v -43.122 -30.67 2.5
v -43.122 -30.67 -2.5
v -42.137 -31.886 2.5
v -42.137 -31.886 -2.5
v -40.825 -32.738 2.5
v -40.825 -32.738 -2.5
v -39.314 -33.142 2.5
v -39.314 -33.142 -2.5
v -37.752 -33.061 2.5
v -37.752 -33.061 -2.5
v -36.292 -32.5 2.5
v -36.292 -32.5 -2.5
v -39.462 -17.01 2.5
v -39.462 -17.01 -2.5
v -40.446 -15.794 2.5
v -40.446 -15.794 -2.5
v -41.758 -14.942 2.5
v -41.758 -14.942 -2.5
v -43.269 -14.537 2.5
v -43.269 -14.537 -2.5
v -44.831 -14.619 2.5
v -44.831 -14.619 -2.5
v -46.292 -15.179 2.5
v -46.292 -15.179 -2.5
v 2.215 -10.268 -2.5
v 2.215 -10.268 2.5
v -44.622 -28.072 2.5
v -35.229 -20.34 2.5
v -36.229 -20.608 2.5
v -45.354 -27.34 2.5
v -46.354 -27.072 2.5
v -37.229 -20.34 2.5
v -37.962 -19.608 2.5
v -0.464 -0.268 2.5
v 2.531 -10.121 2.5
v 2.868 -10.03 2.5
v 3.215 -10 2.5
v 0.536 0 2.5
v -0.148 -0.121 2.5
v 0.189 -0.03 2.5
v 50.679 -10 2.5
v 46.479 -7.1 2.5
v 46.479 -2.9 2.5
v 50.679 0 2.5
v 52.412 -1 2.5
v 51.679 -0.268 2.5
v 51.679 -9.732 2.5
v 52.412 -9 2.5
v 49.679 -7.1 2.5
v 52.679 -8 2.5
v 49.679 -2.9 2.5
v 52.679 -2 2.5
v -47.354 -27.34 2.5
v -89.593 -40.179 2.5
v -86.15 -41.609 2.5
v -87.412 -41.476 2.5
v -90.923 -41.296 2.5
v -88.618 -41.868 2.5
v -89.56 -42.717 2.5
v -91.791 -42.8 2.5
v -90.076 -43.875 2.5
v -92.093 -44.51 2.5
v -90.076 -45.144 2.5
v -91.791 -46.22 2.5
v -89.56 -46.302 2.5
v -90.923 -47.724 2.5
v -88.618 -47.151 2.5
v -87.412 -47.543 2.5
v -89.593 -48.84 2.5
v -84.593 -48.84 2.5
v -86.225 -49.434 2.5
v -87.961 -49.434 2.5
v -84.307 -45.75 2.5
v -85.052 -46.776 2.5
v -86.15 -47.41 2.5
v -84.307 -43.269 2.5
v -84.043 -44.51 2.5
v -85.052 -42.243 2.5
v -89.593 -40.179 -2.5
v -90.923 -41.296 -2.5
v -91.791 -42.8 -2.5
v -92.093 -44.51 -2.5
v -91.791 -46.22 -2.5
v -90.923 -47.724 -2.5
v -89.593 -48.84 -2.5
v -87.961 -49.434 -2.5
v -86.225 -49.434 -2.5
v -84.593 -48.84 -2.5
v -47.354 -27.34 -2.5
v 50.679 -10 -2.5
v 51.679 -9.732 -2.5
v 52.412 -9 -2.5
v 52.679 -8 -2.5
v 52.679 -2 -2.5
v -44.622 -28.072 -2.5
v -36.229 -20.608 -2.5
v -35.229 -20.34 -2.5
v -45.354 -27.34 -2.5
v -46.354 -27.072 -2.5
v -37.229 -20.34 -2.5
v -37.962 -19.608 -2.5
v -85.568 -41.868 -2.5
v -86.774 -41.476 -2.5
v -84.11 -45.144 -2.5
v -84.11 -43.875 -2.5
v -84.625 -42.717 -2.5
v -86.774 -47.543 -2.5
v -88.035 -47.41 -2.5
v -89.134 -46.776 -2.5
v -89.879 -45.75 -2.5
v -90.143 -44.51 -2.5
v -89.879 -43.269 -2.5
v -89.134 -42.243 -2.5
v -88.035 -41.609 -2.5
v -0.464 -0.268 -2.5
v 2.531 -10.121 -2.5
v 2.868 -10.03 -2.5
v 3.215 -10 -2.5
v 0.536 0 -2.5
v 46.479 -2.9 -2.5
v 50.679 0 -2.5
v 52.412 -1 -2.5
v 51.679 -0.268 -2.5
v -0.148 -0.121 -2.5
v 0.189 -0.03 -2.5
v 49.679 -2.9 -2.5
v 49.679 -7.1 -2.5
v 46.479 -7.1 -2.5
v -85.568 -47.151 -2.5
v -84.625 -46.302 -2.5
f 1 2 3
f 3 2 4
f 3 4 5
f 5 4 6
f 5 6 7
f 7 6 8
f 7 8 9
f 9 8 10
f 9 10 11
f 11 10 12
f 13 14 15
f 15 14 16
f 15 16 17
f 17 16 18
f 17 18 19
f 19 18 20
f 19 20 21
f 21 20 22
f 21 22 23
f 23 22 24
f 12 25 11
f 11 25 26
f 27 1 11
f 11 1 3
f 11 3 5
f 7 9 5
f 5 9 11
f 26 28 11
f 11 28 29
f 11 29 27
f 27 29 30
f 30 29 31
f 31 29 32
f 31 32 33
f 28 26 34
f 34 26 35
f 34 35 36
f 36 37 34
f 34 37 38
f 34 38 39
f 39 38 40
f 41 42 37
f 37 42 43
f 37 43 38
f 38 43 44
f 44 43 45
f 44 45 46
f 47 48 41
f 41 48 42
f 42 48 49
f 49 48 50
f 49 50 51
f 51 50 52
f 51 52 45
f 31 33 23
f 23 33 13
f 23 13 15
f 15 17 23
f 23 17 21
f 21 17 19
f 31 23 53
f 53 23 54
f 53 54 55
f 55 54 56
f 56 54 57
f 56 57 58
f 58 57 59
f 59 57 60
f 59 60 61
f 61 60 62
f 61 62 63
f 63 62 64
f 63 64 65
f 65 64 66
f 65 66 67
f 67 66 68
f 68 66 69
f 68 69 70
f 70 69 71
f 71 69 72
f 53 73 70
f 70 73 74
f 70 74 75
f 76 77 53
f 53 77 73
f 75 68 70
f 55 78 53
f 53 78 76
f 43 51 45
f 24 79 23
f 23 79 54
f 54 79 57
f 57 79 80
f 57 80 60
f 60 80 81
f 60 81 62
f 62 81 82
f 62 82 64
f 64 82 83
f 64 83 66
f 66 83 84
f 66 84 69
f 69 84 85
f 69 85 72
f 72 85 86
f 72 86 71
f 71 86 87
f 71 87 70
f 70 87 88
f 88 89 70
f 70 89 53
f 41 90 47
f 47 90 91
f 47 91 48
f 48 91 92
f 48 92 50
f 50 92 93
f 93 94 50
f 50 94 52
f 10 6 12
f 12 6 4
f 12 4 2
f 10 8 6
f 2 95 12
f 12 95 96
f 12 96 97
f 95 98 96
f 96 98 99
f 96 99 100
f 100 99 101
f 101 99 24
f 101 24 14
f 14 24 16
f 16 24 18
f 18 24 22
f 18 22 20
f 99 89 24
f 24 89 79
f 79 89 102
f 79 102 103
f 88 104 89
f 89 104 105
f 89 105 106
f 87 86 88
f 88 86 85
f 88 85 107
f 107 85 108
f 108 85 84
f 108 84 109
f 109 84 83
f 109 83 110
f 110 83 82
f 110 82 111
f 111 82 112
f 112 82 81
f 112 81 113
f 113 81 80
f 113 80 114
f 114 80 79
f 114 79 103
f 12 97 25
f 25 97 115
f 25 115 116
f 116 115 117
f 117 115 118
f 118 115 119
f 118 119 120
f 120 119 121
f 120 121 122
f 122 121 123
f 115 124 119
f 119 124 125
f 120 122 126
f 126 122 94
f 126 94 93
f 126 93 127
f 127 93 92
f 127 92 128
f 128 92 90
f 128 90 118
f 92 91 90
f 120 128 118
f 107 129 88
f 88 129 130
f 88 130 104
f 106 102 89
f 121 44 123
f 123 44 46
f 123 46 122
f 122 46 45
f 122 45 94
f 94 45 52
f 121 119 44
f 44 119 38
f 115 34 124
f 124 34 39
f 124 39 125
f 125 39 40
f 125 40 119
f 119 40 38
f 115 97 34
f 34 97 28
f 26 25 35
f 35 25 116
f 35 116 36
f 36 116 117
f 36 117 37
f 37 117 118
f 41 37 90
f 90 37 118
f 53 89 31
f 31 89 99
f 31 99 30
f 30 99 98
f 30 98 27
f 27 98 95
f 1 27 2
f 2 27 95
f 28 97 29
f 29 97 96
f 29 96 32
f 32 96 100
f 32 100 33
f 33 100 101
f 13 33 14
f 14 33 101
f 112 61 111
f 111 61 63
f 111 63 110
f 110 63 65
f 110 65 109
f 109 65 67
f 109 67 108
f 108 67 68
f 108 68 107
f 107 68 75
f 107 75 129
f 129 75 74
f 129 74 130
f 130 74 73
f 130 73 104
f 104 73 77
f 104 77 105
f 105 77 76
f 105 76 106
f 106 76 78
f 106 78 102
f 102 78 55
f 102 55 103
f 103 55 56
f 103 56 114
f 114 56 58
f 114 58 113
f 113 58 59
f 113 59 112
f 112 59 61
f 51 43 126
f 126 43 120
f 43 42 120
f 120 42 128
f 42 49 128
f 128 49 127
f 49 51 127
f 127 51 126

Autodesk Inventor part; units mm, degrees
ref_plane "YZ Plane" through (0, 0, 0) normal (1, 0, 0) x (0, 1, 0)
ref_plane "XZ Plane" through (0, 0, 0) normal (0, 1, 0) x (-1, 0, 0)
ref_plane "XY Plane" through (0, 0, 0) normal (0, 0, 1) x (1, 0, 0)
sketch "スケッチ1" plane through (0, 0, 0) normal (0, 0, 1) x (1, 0, 0)
  line L0 (0, 0) -> (52.6795, 0)
  line L1 (2.6795, -10) -> (52.6795, -10)
  line L2 (52.6795, 0) -> (52.6795, -10)
  line L3 (2.6795, -10) -> (-83.923, -60)
  line L4 (-36.9615, -21.3397) -> (0, 0)
  line L5 (-83.923, -60) -> (-93.923, -42.6795)
  line L6 (-93.923, -42.6795) -> (-85.2628, -37.6795)
  line L7 (-85.2628, -37.6795) -> (-41.9615, -12.6795)
  line L8 (-41.9615, -12.6795) -> (-36.9615, -21.3397)
  line L9 (-88.923, -51.3397) -> (-45.6218, -26.3397)
  line L10 (-45.6218, -26.3397) -> (-40.6218, -35)
  dimension "d1" = 50
  dimension "d2" = 10
  dimension "d3" = 100
  dimension "d4" = 150
  dimension "d5" = 10
  dimension "d6" = 20
  dimension "d42" = 60
  dimension "d43" = 50
  dimension "d44" = 10
extrude "押し出し1" add sketch "スケッチ1" along normal mid plane 5 contours L0 L2 L1 L3 L10 L9 L5 L6 L7 L8 L4
sketch "スケッチ2" plane through (0, 0, 2.5) normal (0, 0, 1) x (1, 0, 0)
  line L0 (46.4795, -7.1) -> (49.6795, -7.1)
  line L1 (49.6795, -7.1) -> (49.6795, -2.9)
  line L2 (49.6795, -2.9) -> (46.4795, -2.9)
  line L3 (46.4795, -2.9) -> (46.4795, -7.1)
  line L4 (46.4795, -7.1) -> (49.6795, -2.9) construction
  line L5 (49.6795, -7.1) -> (46.4795, -2.9) construction
  line L6 (52.6795, 0) -> (0, 0) projected
  line L7 (2.6795, -10) -> (52.6795, -10) projected
  line L8 (52.6795, -10) -> (52.6795, 0) projected
  point P0 (48.0795, -5)
  dimension "d14" = 3
  dimension "d15" = 3.2
  dimension "d64" = 4.2
  dimension "d65" = 2.9
extrude "押し出し2" cut sketch "スケッチ2" against normal blind 5
sketch "スケッチ5" plane through (0, 0, 2.5) normal (0, 0, 1) x (1, 0, 0)
  line L0 (-41.9615, -12.6795) -> (-93.923, -42.6795) projected
  line L1 (-93.923, -42.6795) -> (-88.923, -51.3397) projected
  circle A0 centre (-87.0929, -44.5096) radius 3.05
  point P0 (0, 0)
  dimension "d45" = 5
  dimension "d46" = 5
  dimension "d47" = 6.1
hole "穴3" at (-87.0929, -44.5096, 2.5) direction (0, 0, -1) diameter 6.1 end through all
fillet "フィレット2" radius 2 10 edges at (-93.923, -42.6795, 0) (-88.923, -51.3397, 0) (-41.9615, -12.6795, 0) (-36.9615, -21.3397, 0) (-40.6218, -35, 0) (-45.6218, -26.3397, 0) (2.6795, -10, 0) (0, 0, 0) (52.6795, 0, 0) (52.6795, -10, 0)
sketch "スケッチ6" plane through (0, 0, 2.5) normal (0, 0, 1) x (1, 0, 0)
  arc A0 (50.6795, -10) -> (52.6795, -8) centre (50.6795, -8) ccw projected
  line L0 (52.6795, -8) -> (52.6795, -2) projected
  arc A1 (52.6795, -2) -> (50.6795, 0) centre (50.6795, -2) ccw projected
  line L1 (50.6795, 0) -> (0.5359, 0) projected
  arc A2 (0.5359, 0) -> (-0.4641, -0.2679) centre (0.5359, -2) ccw projected
  line L2 (-0.4641, -0.2679) -> (-35.2295, -20.3397) projected
  arc A3 (-37.9615, -19.6077) -> (-35.2295, -20.3397) centre (-36.2295, -18.6077) ccw projected
  line L3 (-37.9615, -19.6077) -> (-40.9615, -14.4115) projected
  arc A4 (-40.9615, -14.4115) -> (-43.6936, -13.6795) centre (-42.6936, -15.4115) ccw projected
  line L4 (-43.6936, -13.6795) -> (-92.191, -41.6795) projected
  arc A5 (-92.191, -41.6795) -> (-92.923, -44.4115) centre (-91.191, -43.4115) ccw projected
  line L5 (-92.923, -44.4115) -> (-89.923, -49.6077) projected
  arc A6 (-89.923, -49.6077) -> (-87.191, -50.3397) centre (-88.191, -48.6077) ccw projected
  line L6 (-87.191, -50.3397) -> (-47.3538, -27.3397) projected
  arc A7 (-44.6218, -28.0718) -> (-47.3538, -27.3397) centre (-46.3538, -29.0718) ccw projected
  line L7 (-44.6218, -28.0718) -> (-41.6218, -33.2679) projected
  arc A8 (-41.6218, -33.2679) -> (-38.8897, -34) centre (-39.8897, -32.2679) ccw projected
  line L8 (-38.8897, -34) -> (2.2154, -10.2679) projected
  arc A9 (3.2154, -10) -> (2.2154, -10.2679) centre (3.2154, -12) ccw projected
  line L9 (3.2154, -10) -> (50.6795, -10) projected
  circle A10 centre (-87.0929, -44.5096) radius 3.05 projected
  line L10 (46.4795, -2.9) -> (49.6795, -2.9) projected
  line L11 (49.6795, -2.9) -> (49.6795, -7.1) projected
  line L12 (49.6795, -7.1) -> (46.4795, -7.1) projected
  line L13 (46.4795, -7.1) -> (46.4795, -2.9) projected
  circle A11 centre (-87.0929, -44.5096) radius 5
  point P0 (0, 0)
  point P1 (-84.5929, -48.8397)
  point P2 (-91.423, -47.0096)
  point P3 (-89.5929, -40.1795)
extrude "押し出し3" cut sketch "スケッチ6" against normal blind 10 contours L6 A6 L5 A11 | L5 A5 L4 A11
sketch "スケッチ7" plane through (0, 0, 2.5) normal (0, 0, 1) x (1, 0, 0)
  line L0 (-43.6936, -13.6795) -> (-89.5929, -40.1795) projected
  line L1 (-37.9615, -19.6077) -> (-40.9615, -14.4115) projected
  line L2 (-38.8897, -34) -> (2.2154, -10.2679) projected
  line L3 (-44.6218, -28.0718) -> (-41.6218, -33.2679) projected
  circle A0 centre (-43.7917, -19.5096) radius 5
  circle A1 centre (-38.7917, -28.1699) radius 5
  line L4 (46.4795, -2.9) -> (49.6795, -2.9) projected
  line L5 (49.6795, -2.9) -> (49.6795, -7.1) projected
  line L6 (49.6795, -7.1) -> (46.4795, -7.1) projected
  line L7 (46.4795, -7.1) -> (46.4795, -2.9) projected
  circle A2 centre (-87.0929, -44.5096) radius 3.05 projected
  arc A3 (-89.5929, -40.1795) -> (-84.5929, -48.8397) centre (-87.0929, -44.5096) ccw projected
  line L8 (-84.5929, -48.8397) -> (-47.3538, -27.3397) projected
  arc A4 (-44.6218, -28.0718) -> (-47.3538, -27.3397) centre (-46.3538, -29.0718) ccw projected
  line L9 (-44.6218, -28.0718) -> (-41.6218, -33.2679) projected
  arc A5 (-41.6218, -33.2679) -> (-38.8897, -34) centre (-39.8897, -32.2679) ccw projected
  line L10 (-38.8897, -34) -> (2.2154, -10.2679) projected
  arc A6 (3.2154, -10) -> (2.2154, -10.2679) centre (3.2154, -12) ccw projected
  line L11 (3.2154, -10) -> (50.6795, -10) projected
  arc A7 (50.6795, -10) -> (52.6795, -8) centre (50.6795, -8) ccw projected
  line L12 (52.6795, -8) -> (52.6795, -2) projected
  arc A8 (52.6795, -2) -> (50.6795, 0) centre (50.6795, -2) ccw projected
  line L13 (50.6795, 0) -> (0.5359, 0) projected
  arc A9 (0.5359, 0) -> (-0.4641, -0.2679) centre (0.5359, -2) ccw projected
  line L14 (-0.4641, -0.2679) -> (-35.2295, -20.3397) projected
  arc A10 (-37.9615, -19.6077) -> (-35.2295, -20.3397) centre (-36.2295, -18.6077) ccw projected
  line L15 (-37.9615, -19.6077) -> (-40.9615, -14.4115) projected
  arc A11 (-40.9615, -14.4115) -> (-43.6936, -13.6795) centre (-42.6936, -15.4115) ccw projected
  line L16 (-43.6936, -13.6795) -> (-89.5929, -40.1795) projected
  point P0 (0, 0)
  point P1 (-36.2917, -32.5)
  point P2 (-43.1218, -30.6699)
  point P3 (-46.2917, -15.1795)
  point P4 (-39.4615, -17.0096)
  dimension "d58" = 5
  dimension "d59" = 5
  dimension "d60" = 5
  dimension "d61" = 5
extrude "押し出し4" cut sketch "スケッチ7" against normal blind 10 contours A11 L1 A0 L0 | A1 L2 A5 L3
equation "\"d46\" = d45"
equation "\"d59\" = d58"
equation "\"d60\" = d58"
equation "\"d61\" = d58"
properties part number "茎固定パーツ"
